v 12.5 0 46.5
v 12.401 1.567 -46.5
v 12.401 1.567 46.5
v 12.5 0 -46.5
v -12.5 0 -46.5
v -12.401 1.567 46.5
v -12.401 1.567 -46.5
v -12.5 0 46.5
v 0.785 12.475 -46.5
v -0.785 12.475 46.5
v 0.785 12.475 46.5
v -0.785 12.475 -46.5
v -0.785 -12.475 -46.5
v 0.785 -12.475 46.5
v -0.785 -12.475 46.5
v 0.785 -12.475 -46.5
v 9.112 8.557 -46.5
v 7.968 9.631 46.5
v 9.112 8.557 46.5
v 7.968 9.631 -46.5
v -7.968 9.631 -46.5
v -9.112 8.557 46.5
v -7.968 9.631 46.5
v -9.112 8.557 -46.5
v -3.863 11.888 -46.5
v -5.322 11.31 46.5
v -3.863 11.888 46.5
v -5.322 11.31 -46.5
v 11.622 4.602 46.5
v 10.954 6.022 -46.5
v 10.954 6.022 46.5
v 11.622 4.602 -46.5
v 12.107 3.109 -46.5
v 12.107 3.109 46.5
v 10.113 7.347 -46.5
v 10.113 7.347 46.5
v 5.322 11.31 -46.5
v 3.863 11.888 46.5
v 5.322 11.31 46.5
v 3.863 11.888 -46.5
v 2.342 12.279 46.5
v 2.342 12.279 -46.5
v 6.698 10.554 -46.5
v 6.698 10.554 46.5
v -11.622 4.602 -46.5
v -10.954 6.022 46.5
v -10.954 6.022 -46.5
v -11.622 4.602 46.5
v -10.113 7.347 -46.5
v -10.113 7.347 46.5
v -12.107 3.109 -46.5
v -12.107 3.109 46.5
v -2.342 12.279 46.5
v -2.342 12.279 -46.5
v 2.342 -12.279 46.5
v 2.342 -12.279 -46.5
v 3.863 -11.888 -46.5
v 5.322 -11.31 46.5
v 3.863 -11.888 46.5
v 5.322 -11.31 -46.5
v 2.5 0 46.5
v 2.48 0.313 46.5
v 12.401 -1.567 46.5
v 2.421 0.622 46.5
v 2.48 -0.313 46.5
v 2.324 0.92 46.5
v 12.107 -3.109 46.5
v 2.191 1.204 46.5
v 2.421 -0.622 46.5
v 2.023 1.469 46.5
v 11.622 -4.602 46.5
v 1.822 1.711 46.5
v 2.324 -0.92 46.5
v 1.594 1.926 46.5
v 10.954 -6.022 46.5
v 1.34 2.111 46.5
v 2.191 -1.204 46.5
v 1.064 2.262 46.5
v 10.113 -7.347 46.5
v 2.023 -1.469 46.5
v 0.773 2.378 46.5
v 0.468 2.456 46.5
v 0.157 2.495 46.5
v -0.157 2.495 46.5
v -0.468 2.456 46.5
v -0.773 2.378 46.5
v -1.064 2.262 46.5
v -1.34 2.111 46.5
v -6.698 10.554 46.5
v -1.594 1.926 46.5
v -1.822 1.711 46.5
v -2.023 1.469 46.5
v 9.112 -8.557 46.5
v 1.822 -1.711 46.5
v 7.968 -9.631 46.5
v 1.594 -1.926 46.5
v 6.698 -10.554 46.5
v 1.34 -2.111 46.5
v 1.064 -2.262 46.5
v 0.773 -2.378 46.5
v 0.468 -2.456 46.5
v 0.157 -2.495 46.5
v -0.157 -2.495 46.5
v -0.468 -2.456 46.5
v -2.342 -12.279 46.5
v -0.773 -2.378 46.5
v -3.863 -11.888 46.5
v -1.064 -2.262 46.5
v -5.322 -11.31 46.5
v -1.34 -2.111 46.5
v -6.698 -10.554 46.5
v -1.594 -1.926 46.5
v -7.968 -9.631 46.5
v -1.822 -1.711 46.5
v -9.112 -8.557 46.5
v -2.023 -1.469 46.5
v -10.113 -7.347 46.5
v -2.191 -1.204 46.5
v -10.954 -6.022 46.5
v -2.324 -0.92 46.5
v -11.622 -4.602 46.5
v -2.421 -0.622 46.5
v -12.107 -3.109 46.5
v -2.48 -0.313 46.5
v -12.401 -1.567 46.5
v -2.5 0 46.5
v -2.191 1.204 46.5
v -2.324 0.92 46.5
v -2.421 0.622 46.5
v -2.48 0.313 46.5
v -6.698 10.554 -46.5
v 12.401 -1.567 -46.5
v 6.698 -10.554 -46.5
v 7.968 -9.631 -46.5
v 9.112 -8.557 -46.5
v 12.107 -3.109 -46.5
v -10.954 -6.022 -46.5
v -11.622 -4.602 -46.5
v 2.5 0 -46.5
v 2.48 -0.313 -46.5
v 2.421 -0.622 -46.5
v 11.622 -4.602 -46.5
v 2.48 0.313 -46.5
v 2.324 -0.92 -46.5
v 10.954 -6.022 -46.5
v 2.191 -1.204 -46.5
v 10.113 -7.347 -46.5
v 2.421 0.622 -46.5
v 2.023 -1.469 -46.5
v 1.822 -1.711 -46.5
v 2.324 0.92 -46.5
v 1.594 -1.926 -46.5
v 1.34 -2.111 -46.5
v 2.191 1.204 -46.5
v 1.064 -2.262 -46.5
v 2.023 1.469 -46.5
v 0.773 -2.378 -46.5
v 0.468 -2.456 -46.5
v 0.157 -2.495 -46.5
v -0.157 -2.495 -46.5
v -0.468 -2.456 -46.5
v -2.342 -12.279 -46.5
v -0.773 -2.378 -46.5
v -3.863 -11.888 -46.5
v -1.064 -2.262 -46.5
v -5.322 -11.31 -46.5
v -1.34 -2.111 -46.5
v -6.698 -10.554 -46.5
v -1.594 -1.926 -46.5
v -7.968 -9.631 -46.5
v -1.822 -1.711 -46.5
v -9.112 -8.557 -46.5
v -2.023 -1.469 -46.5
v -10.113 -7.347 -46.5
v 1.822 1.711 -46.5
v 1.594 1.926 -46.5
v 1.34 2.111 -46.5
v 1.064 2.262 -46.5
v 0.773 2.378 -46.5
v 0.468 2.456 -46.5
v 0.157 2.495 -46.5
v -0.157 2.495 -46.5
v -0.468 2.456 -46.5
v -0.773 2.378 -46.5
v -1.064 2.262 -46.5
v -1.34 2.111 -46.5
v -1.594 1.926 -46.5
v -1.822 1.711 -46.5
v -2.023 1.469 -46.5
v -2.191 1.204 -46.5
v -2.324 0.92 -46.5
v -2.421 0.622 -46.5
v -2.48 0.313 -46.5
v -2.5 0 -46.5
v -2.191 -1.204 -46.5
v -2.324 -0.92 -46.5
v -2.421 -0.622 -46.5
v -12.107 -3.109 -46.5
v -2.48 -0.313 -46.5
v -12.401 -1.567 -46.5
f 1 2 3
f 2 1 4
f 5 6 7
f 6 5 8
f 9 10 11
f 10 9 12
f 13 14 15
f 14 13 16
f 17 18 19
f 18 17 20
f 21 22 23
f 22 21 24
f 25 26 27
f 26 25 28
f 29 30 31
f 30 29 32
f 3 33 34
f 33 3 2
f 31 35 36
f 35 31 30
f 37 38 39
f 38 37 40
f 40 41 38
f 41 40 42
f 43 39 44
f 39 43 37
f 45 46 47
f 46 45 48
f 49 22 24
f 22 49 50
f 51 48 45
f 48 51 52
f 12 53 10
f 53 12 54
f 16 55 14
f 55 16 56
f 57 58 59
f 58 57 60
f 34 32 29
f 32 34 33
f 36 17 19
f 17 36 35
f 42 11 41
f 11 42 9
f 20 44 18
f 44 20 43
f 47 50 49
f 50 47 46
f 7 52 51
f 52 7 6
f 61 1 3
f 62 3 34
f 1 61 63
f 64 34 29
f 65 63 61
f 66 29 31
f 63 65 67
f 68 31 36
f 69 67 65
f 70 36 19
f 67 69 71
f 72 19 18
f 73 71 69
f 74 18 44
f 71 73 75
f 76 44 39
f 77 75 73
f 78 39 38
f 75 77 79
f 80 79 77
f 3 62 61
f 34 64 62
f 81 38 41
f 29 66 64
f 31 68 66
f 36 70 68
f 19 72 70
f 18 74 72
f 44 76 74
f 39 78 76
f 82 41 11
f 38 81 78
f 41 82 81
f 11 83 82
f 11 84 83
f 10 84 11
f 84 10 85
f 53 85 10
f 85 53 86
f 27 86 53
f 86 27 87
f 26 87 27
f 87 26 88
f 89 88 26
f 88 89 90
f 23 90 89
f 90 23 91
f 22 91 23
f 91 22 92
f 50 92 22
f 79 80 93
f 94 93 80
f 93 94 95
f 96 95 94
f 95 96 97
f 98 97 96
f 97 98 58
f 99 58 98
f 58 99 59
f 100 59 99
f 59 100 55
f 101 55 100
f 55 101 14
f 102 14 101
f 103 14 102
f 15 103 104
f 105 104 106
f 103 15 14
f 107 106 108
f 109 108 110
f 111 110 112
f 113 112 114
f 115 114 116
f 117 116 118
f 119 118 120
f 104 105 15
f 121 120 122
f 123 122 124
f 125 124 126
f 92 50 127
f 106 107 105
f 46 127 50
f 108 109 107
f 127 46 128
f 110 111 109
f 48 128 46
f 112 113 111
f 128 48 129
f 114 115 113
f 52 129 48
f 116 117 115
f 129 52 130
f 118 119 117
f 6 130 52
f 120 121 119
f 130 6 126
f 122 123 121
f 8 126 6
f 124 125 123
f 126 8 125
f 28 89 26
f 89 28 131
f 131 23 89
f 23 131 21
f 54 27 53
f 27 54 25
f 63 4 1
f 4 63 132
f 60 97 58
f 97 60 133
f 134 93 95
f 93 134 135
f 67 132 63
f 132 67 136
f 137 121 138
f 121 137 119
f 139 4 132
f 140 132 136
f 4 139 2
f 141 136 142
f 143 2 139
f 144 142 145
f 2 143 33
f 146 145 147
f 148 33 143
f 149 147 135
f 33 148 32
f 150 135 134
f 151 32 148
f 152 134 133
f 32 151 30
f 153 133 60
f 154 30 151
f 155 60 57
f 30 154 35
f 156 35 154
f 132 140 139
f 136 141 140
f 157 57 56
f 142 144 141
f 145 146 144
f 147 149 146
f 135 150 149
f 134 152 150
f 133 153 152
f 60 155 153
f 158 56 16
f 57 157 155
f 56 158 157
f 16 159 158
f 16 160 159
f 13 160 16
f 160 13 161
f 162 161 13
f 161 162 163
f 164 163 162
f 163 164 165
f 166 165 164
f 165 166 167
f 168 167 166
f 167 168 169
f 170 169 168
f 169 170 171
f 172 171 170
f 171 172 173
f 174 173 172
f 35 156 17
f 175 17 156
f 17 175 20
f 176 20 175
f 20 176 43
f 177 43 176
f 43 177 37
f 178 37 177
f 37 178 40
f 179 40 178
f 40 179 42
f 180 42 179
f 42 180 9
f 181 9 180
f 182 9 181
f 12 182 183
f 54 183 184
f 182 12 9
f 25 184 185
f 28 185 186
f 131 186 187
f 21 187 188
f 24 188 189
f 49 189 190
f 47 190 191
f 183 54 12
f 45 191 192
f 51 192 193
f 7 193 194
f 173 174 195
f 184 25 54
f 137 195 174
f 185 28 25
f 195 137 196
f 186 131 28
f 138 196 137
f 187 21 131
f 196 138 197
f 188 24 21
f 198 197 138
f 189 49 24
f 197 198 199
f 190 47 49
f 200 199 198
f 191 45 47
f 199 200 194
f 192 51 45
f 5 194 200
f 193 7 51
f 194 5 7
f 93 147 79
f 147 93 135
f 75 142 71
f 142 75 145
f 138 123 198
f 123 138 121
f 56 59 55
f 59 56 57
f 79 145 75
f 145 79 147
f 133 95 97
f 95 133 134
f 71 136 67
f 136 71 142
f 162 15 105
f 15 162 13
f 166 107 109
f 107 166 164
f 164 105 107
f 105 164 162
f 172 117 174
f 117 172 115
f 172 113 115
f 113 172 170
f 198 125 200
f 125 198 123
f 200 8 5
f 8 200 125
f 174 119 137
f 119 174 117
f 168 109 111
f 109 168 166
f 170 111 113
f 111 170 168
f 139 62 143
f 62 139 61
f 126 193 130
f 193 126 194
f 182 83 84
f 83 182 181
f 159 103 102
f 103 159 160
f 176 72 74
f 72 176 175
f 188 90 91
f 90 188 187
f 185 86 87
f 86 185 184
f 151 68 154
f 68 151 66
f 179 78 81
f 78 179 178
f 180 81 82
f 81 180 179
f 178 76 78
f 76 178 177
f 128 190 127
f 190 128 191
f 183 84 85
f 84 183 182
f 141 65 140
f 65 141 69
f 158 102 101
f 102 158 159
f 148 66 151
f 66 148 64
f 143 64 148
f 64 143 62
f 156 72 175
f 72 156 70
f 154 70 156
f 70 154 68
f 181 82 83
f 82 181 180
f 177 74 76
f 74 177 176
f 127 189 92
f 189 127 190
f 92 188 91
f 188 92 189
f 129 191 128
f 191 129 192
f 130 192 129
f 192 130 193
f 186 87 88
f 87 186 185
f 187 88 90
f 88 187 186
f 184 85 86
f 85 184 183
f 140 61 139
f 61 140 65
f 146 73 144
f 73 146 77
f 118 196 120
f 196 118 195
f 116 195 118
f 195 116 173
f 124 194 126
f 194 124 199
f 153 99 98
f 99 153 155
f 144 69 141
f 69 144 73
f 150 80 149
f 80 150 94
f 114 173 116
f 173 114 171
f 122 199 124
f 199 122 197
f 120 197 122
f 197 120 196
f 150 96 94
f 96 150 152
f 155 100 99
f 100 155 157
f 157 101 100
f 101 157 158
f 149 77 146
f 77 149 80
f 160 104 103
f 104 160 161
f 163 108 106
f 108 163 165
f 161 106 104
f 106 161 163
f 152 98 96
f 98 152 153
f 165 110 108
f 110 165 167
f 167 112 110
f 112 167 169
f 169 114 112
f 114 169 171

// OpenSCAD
$fn = 50;


difference() {
	union() {
		translate(v = [0, 0, -46.5000000000]) {
			cylinder(h = 93, r = 12.5000000000);
		}
	}
	union() {
		translate(v = [0, 0, -100.0000000000]) {
			cylinder(h = 200, r = 2.5000000000);
		}
	}
}
